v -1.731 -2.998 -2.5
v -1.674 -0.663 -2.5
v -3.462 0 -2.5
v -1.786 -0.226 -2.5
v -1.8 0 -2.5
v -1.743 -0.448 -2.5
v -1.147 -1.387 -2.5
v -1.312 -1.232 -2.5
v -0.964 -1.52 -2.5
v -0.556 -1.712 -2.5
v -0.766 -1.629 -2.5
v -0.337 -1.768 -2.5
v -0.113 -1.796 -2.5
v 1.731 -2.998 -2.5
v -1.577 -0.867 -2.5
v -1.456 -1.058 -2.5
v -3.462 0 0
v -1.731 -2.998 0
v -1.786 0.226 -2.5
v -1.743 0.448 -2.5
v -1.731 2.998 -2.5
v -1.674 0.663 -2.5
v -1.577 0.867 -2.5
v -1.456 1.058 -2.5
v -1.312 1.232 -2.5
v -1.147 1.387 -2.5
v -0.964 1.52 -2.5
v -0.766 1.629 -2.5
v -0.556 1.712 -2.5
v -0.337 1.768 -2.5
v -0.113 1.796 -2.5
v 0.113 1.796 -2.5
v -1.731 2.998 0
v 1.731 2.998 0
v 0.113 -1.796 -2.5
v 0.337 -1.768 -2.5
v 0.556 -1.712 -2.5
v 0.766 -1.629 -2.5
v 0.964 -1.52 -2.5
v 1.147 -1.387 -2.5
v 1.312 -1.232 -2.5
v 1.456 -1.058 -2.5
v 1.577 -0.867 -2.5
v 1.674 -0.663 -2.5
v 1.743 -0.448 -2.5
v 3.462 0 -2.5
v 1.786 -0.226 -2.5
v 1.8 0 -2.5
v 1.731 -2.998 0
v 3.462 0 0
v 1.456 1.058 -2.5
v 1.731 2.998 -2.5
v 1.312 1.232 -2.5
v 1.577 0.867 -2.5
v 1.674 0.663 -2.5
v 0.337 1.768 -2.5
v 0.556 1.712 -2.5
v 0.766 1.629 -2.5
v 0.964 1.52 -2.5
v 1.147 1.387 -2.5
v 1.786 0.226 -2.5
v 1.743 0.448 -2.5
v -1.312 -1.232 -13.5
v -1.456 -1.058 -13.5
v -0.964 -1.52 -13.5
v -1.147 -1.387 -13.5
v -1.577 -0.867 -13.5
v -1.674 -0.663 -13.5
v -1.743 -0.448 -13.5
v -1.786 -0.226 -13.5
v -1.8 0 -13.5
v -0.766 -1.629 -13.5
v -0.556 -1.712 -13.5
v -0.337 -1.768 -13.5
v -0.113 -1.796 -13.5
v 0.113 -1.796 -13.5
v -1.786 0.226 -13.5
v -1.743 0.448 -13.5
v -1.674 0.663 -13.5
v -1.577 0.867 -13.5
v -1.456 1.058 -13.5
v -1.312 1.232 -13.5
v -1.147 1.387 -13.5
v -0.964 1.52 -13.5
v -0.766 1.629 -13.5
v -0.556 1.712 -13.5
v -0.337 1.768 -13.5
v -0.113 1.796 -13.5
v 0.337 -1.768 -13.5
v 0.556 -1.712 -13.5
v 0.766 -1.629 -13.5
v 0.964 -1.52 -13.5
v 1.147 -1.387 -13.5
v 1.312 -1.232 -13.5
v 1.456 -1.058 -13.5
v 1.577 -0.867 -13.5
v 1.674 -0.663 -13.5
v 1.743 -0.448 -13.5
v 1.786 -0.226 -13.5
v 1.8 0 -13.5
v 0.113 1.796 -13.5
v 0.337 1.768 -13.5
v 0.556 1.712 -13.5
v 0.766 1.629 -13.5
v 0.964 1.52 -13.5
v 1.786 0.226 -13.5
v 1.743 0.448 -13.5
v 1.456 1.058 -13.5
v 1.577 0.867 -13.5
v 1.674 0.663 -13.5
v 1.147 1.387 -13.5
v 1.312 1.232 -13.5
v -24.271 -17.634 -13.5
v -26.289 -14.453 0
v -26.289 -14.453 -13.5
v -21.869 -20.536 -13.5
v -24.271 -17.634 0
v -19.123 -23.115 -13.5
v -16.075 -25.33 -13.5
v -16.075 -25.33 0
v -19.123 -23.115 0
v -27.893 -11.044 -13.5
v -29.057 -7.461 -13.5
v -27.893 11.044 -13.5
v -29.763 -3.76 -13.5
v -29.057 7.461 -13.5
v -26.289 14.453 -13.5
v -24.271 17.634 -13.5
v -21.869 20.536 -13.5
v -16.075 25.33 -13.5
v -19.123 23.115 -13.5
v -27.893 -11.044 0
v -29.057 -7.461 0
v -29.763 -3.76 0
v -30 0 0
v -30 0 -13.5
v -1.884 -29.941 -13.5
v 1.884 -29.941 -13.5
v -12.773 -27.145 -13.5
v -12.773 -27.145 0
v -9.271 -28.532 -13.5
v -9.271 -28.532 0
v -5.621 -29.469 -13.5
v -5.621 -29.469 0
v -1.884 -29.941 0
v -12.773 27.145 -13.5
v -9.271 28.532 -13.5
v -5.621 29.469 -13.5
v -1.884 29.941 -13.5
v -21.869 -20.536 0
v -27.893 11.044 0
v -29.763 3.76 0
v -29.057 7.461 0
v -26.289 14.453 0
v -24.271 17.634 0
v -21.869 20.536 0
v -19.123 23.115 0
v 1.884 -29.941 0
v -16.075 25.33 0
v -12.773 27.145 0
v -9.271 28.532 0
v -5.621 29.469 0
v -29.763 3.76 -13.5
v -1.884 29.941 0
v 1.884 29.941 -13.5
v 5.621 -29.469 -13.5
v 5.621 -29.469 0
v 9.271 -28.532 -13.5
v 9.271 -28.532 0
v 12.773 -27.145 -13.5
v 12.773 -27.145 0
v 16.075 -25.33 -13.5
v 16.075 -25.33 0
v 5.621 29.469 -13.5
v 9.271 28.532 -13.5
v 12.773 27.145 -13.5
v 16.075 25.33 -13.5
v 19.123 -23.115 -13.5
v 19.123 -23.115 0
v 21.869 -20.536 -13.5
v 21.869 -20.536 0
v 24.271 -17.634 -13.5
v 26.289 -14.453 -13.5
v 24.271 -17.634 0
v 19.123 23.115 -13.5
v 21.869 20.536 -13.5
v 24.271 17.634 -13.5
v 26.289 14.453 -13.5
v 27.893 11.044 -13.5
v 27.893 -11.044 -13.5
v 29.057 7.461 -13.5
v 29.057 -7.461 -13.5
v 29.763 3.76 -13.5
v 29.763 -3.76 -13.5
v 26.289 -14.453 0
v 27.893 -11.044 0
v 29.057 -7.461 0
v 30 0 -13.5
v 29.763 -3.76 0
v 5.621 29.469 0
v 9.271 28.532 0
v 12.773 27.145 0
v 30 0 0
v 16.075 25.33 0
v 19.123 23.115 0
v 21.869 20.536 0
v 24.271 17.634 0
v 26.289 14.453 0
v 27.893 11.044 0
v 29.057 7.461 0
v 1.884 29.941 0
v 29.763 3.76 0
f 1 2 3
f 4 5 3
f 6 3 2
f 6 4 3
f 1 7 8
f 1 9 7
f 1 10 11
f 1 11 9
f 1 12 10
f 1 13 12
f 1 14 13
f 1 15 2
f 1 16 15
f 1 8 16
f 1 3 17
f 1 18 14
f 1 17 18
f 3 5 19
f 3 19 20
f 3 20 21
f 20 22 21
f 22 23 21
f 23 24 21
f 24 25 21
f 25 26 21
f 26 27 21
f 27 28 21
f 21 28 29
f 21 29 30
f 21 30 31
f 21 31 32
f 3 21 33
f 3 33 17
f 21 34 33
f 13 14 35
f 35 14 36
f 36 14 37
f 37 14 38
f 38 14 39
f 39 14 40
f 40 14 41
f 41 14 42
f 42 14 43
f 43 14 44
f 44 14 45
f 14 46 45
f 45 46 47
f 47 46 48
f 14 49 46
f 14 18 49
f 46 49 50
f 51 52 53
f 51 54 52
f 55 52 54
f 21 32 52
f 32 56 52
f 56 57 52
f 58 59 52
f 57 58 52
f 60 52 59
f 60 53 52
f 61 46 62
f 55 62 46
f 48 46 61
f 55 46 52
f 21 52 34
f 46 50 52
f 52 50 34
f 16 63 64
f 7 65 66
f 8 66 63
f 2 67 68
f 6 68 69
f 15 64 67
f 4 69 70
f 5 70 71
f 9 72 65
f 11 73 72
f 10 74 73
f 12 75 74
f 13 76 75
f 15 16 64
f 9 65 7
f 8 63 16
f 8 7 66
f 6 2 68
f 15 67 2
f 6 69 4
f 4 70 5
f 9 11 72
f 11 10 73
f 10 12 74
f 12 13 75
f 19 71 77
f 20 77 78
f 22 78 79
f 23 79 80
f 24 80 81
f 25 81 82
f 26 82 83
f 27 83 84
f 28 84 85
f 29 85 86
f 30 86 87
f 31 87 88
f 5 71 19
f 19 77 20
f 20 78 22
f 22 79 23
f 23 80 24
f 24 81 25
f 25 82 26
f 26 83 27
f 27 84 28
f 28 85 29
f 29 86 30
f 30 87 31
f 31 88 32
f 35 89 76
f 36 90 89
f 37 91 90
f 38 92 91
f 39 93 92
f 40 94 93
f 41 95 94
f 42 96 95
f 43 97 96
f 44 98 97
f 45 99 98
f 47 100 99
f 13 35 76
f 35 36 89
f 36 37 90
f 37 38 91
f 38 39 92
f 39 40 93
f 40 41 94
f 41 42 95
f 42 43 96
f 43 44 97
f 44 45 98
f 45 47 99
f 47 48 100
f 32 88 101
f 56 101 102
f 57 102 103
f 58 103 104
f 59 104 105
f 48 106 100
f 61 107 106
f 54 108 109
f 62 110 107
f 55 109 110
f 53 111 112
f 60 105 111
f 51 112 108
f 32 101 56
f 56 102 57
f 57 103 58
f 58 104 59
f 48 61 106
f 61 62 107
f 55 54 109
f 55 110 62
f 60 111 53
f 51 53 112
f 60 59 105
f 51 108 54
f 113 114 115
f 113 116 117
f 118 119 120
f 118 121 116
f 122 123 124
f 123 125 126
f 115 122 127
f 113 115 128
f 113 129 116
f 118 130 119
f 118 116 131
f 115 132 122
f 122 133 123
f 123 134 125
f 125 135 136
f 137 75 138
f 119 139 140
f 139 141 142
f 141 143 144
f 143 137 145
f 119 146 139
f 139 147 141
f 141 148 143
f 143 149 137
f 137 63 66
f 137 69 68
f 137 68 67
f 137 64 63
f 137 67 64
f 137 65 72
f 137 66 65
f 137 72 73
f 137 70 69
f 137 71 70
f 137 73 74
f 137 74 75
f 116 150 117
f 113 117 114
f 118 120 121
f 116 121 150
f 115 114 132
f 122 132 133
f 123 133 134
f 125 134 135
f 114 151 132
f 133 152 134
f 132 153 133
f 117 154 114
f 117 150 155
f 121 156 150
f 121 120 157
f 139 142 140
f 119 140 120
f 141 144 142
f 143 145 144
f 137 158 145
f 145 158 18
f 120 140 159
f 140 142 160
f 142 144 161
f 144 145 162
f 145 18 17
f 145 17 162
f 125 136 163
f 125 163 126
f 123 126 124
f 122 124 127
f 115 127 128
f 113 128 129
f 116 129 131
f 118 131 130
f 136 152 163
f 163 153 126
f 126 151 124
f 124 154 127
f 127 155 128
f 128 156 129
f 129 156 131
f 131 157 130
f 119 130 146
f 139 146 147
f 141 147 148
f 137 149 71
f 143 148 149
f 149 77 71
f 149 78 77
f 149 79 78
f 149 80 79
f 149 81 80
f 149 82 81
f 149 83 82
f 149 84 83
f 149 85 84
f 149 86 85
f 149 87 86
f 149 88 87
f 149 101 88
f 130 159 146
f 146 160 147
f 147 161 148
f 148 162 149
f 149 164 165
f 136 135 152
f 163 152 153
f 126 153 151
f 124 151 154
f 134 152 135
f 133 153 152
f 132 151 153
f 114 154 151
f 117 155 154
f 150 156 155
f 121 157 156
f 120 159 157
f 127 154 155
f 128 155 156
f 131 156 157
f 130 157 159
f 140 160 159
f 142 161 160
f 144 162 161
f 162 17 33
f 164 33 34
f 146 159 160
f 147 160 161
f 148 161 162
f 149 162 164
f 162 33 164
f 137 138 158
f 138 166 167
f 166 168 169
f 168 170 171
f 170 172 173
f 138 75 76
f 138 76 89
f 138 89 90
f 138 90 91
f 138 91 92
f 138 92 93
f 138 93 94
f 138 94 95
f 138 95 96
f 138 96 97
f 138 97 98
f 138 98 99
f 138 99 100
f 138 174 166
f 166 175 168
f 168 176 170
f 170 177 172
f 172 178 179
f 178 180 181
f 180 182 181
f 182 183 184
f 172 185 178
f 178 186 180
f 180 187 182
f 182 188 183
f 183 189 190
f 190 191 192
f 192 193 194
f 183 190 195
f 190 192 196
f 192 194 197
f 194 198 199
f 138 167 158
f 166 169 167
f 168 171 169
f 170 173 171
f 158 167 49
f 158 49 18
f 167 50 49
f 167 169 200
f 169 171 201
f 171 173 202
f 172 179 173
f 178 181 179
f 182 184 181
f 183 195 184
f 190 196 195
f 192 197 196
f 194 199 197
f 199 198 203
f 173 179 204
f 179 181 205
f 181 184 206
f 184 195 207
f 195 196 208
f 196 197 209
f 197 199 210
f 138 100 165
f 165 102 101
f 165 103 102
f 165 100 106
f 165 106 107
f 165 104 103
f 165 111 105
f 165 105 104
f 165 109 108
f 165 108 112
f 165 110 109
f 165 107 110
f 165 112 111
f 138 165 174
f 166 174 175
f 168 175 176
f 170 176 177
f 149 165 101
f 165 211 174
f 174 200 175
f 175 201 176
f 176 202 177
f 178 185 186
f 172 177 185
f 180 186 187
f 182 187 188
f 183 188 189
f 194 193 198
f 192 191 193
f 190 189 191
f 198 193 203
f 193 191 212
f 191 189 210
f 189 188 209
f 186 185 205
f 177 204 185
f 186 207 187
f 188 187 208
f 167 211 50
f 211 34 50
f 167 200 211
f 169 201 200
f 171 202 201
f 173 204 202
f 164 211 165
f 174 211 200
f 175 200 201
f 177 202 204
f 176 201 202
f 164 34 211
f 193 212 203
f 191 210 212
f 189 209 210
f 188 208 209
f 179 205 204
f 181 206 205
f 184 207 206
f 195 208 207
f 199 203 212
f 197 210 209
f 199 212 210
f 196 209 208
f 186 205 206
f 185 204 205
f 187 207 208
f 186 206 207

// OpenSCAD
$fn = 50;

difference() {
	union() {
		translate(v = [0, 0, -13.5]) {
			cylinder(h = 13.5, r = 30.0);
		}
	}
	union() {
		translate(v = [0, 0, 0]) {
			rotate(a = [0, 0, 0]) {
				difference() {
					union() {
						translate(v = [0, 0, -2.5]) {
							linear_extrude(height = 2.5) {
								polygon(points = [[3.4619999999999997, 0.0], [1.7310000000000003, 2.9981799479017264], [-1.7309999999999992, 2.9981799479017264], [-3.4619999999999997, 4.2397272186481365e-16], [-1.7310000000000014, -2.998179947901726], [1.7309999999999977, -2.9981799479017277]]);
							}
						}
					}
					union();
				}
			}
		}
		#translate(v = [0, 0, -100.0]) {
			cylinder(h = 200, r = 1.8);
		}
	}
}
